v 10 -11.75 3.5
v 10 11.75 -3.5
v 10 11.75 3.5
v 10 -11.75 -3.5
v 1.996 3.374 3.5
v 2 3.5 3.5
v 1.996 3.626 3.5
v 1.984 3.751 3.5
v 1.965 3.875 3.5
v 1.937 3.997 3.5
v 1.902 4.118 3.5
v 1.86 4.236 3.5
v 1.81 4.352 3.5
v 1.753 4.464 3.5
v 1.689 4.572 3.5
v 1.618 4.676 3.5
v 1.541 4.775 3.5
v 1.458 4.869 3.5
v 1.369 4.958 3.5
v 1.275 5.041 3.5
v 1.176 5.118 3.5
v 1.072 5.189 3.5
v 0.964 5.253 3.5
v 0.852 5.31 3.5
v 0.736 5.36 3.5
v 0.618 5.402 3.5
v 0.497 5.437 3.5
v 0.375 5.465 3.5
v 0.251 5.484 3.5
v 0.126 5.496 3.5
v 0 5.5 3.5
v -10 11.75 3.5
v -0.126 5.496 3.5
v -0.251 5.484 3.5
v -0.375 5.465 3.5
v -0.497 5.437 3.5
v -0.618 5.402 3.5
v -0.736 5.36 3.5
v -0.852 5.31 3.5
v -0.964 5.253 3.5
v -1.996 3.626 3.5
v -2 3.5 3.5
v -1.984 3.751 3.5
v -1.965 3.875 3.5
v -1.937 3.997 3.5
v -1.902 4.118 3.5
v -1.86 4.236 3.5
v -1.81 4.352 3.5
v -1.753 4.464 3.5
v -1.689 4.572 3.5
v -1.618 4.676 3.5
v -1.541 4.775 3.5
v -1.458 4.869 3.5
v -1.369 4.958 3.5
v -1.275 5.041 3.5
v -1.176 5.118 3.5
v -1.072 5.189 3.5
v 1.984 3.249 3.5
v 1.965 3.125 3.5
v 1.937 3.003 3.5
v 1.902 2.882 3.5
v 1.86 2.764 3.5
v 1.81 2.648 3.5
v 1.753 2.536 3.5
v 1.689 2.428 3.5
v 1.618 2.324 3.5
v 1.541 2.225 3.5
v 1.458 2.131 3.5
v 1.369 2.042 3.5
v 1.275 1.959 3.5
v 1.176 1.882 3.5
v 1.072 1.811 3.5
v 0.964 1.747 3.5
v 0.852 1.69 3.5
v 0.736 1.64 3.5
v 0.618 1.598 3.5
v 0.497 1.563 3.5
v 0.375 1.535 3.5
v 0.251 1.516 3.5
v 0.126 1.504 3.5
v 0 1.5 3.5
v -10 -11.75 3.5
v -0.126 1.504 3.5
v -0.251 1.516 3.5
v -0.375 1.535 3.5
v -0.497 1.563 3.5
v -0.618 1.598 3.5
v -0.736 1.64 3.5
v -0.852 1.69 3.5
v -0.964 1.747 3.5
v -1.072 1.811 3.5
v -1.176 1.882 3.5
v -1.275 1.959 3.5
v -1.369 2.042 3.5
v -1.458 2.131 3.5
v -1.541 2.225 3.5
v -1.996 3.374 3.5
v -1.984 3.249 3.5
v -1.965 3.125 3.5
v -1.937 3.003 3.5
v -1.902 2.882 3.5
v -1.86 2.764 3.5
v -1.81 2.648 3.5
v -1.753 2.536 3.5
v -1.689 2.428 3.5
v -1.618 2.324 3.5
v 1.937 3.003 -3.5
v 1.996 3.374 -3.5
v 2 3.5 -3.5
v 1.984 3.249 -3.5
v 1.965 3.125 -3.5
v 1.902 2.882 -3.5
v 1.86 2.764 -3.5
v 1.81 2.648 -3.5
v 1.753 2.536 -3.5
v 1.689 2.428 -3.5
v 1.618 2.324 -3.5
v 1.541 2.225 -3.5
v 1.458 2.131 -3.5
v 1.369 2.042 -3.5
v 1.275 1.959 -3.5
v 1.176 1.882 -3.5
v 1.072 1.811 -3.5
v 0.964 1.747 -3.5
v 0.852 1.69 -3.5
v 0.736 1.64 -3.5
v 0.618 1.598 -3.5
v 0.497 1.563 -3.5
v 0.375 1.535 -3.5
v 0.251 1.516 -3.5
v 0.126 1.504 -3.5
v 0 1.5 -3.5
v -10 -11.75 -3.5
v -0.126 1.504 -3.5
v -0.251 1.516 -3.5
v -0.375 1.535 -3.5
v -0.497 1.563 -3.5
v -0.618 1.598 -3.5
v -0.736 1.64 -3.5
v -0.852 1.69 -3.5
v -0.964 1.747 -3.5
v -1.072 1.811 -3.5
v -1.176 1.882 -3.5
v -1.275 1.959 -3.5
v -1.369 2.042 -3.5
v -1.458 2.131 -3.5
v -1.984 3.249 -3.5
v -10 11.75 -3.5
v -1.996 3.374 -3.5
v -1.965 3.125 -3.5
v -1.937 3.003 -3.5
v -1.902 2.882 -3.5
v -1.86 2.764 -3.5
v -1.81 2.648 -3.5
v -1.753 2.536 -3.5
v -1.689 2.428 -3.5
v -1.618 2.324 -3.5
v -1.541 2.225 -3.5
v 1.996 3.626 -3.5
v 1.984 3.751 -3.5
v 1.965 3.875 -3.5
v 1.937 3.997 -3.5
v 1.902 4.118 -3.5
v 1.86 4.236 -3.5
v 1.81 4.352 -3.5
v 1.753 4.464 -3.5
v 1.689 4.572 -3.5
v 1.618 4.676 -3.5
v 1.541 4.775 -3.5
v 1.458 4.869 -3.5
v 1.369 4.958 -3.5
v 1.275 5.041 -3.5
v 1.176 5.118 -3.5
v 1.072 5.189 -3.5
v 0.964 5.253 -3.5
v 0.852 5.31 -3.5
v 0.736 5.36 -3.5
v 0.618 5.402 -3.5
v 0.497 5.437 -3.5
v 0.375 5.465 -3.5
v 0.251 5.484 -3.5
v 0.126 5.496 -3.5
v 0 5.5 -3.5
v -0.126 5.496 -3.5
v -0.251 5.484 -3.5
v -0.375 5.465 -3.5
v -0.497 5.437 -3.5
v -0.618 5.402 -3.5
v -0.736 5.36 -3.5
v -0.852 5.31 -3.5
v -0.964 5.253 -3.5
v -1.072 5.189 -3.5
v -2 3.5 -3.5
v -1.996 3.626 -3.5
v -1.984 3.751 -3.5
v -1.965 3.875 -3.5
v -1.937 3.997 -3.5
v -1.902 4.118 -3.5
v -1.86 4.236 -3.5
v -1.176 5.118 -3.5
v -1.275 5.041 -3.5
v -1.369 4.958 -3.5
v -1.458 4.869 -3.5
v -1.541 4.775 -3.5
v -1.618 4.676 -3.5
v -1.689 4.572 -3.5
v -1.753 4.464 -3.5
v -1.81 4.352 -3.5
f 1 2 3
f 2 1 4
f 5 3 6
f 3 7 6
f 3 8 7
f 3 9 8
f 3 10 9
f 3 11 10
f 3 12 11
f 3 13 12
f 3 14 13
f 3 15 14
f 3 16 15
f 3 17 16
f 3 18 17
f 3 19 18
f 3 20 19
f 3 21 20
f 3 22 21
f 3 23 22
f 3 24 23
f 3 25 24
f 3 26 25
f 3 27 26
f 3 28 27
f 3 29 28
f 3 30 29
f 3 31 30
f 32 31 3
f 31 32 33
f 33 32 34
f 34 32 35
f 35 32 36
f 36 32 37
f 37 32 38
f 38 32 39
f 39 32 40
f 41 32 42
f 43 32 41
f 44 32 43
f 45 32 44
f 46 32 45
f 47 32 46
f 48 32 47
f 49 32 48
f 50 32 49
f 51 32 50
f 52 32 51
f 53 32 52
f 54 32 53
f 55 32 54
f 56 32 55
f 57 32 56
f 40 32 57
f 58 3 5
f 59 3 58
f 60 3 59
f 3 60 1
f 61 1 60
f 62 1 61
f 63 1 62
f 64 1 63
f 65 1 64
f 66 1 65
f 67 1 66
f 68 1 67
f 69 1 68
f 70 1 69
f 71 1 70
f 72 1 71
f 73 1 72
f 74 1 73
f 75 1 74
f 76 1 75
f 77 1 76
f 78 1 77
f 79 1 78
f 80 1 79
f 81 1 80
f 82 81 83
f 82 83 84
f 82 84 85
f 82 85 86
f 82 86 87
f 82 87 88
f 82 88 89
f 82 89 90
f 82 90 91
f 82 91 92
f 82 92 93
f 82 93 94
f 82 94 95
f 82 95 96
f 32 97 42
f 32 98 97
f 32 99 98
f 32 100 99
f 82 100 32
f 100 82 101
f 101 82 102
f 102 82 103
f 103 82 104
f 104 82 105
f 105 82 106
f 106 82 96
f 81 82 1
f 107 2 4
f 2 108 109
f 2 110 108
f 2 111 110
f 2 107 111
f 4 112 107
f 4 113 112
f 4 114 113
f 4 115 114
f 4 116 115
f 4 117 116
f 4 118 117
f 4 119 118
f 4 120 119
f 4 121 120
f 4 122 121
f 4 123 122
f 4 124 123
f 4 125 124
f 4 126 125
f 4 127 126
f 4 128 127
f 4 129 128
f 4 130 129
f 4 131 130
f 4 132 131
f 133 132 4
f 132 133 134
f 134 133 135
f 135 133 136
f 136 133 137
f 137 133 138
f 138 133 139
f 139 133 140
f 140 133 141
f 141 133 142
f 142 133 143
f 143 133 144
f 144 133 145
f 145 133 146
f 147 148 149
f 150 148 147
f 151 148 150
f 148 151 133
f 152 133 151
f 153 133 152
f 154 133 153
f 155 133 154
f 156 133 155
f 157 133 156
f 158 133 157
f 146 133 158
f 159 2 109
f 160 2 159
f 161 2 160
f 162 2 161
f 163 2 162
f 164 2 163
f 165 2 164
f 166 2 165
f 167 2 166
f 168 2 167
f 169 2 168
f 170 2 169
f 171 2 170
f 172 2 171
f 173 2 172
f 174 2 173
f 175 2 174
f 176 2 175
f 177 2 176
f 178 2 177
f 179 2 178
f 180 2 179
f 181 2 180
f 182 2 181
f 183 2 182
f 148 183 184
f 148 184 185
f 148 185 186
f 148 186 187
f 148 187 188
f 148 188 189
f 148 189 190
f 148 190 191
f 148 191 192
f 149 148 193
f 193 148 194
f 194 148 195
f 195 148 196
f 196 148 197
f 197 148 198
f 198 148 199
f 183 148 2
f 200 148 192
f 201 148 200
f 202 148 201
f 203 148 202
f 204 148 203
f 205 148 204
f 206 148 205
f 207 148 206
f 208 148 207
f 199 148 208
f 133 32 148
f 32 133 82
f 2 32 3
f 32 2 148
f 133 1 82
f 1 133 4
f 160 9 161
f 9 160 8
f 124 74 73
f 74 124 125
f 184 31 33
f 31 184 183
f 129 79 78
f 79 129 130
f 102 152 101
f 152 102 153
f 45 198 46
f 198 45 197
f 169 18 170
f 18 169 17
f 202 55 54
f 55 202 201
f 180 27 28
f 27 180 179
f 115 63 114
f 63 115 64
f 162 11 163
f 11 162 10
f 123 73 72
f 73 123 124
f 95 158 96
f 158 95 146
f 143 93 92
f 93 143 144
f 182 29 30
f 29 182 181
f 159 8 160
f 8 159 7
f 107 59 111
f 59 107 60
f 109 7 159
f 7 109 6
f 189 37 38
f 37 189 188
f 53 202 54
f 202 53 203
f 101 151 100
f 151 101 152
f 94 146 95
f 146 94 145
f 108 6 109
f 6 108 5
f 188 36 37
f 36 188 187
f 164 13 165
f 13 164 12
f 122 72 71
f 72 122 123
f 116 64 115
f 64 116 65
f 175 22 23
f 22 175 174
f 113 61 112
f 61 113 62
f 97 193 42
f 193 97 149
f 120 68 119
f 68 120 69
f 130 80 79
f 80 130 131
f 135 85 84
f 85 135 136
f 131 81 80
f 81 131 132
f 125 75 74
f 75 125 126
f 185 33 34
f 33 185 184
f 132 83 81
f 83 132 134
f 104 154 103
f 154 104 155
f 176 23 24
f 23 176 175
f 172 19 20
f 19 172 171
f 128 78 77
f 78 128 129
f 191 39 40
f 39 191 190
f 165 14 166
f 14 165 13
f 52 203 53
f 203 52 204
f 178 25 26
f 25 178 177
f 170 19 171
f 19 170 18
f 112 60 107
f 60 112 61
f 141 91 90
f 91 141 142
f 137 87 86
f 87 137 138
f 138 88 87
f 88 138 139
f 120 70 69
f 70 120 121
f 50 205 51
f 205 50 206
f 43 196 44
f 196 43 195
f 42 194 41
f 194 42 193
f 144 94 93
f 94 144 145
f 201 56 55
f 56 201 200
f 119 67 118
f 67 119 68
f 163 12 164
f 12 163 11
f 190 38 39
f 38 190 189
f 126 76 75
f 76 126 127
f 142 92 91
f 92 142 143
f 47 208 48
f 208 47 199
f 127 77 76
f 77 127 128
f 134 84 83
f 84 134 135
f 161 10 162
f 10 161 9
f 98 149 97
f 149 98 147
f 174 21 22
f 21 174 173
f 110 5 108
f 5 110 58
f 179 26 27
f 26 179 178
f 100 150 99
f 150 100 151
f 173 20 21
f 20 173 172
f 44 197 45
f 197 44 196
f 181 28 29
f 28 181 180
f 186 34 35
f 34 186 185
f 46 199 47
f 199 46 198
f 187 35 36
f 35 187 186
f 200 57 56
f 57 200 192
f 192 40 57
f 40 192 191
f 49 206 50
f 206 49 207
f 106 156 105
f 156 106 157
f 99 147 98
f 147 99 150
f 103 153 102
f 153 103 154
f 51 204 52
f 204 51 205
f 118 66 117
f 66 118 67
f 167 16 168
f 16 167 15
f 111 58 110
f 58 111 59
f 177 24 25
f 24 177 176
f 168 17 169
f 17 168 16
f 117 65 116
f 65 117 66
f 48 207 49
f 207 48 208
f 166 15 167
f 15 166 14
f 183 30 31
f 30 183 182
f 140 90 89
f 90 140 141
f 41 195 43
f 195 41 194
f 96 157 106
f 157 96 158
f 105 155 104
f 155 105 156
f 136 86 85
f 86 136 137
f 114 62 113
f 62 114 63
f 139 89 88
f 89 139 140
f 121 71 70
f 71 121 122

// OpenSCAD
$fn = $preview ? 25 : 100;
EPSILON = 0.01;

// 7mm from top
// 6.5mm from side
// Bracket:
//  20mm length
//  16.5mm wide
// Hole diameter: 4mm, radius: 2mm

// bracket
// difference() {
//   cube([ 20, 16.5, 1 ], center = true);
//   cylinder(height = 10, r = 4, center = true)
// }

WALL_OFFSET = 7;

// padding
difference() {
  cube([ 20, 16.5 + WALL_OFFSET, 7 ], center = true);
  translate([ 0, WALL_OFFSET / 2, 0 ]) cylinder(h = 10, r = 2, center = true);
}
